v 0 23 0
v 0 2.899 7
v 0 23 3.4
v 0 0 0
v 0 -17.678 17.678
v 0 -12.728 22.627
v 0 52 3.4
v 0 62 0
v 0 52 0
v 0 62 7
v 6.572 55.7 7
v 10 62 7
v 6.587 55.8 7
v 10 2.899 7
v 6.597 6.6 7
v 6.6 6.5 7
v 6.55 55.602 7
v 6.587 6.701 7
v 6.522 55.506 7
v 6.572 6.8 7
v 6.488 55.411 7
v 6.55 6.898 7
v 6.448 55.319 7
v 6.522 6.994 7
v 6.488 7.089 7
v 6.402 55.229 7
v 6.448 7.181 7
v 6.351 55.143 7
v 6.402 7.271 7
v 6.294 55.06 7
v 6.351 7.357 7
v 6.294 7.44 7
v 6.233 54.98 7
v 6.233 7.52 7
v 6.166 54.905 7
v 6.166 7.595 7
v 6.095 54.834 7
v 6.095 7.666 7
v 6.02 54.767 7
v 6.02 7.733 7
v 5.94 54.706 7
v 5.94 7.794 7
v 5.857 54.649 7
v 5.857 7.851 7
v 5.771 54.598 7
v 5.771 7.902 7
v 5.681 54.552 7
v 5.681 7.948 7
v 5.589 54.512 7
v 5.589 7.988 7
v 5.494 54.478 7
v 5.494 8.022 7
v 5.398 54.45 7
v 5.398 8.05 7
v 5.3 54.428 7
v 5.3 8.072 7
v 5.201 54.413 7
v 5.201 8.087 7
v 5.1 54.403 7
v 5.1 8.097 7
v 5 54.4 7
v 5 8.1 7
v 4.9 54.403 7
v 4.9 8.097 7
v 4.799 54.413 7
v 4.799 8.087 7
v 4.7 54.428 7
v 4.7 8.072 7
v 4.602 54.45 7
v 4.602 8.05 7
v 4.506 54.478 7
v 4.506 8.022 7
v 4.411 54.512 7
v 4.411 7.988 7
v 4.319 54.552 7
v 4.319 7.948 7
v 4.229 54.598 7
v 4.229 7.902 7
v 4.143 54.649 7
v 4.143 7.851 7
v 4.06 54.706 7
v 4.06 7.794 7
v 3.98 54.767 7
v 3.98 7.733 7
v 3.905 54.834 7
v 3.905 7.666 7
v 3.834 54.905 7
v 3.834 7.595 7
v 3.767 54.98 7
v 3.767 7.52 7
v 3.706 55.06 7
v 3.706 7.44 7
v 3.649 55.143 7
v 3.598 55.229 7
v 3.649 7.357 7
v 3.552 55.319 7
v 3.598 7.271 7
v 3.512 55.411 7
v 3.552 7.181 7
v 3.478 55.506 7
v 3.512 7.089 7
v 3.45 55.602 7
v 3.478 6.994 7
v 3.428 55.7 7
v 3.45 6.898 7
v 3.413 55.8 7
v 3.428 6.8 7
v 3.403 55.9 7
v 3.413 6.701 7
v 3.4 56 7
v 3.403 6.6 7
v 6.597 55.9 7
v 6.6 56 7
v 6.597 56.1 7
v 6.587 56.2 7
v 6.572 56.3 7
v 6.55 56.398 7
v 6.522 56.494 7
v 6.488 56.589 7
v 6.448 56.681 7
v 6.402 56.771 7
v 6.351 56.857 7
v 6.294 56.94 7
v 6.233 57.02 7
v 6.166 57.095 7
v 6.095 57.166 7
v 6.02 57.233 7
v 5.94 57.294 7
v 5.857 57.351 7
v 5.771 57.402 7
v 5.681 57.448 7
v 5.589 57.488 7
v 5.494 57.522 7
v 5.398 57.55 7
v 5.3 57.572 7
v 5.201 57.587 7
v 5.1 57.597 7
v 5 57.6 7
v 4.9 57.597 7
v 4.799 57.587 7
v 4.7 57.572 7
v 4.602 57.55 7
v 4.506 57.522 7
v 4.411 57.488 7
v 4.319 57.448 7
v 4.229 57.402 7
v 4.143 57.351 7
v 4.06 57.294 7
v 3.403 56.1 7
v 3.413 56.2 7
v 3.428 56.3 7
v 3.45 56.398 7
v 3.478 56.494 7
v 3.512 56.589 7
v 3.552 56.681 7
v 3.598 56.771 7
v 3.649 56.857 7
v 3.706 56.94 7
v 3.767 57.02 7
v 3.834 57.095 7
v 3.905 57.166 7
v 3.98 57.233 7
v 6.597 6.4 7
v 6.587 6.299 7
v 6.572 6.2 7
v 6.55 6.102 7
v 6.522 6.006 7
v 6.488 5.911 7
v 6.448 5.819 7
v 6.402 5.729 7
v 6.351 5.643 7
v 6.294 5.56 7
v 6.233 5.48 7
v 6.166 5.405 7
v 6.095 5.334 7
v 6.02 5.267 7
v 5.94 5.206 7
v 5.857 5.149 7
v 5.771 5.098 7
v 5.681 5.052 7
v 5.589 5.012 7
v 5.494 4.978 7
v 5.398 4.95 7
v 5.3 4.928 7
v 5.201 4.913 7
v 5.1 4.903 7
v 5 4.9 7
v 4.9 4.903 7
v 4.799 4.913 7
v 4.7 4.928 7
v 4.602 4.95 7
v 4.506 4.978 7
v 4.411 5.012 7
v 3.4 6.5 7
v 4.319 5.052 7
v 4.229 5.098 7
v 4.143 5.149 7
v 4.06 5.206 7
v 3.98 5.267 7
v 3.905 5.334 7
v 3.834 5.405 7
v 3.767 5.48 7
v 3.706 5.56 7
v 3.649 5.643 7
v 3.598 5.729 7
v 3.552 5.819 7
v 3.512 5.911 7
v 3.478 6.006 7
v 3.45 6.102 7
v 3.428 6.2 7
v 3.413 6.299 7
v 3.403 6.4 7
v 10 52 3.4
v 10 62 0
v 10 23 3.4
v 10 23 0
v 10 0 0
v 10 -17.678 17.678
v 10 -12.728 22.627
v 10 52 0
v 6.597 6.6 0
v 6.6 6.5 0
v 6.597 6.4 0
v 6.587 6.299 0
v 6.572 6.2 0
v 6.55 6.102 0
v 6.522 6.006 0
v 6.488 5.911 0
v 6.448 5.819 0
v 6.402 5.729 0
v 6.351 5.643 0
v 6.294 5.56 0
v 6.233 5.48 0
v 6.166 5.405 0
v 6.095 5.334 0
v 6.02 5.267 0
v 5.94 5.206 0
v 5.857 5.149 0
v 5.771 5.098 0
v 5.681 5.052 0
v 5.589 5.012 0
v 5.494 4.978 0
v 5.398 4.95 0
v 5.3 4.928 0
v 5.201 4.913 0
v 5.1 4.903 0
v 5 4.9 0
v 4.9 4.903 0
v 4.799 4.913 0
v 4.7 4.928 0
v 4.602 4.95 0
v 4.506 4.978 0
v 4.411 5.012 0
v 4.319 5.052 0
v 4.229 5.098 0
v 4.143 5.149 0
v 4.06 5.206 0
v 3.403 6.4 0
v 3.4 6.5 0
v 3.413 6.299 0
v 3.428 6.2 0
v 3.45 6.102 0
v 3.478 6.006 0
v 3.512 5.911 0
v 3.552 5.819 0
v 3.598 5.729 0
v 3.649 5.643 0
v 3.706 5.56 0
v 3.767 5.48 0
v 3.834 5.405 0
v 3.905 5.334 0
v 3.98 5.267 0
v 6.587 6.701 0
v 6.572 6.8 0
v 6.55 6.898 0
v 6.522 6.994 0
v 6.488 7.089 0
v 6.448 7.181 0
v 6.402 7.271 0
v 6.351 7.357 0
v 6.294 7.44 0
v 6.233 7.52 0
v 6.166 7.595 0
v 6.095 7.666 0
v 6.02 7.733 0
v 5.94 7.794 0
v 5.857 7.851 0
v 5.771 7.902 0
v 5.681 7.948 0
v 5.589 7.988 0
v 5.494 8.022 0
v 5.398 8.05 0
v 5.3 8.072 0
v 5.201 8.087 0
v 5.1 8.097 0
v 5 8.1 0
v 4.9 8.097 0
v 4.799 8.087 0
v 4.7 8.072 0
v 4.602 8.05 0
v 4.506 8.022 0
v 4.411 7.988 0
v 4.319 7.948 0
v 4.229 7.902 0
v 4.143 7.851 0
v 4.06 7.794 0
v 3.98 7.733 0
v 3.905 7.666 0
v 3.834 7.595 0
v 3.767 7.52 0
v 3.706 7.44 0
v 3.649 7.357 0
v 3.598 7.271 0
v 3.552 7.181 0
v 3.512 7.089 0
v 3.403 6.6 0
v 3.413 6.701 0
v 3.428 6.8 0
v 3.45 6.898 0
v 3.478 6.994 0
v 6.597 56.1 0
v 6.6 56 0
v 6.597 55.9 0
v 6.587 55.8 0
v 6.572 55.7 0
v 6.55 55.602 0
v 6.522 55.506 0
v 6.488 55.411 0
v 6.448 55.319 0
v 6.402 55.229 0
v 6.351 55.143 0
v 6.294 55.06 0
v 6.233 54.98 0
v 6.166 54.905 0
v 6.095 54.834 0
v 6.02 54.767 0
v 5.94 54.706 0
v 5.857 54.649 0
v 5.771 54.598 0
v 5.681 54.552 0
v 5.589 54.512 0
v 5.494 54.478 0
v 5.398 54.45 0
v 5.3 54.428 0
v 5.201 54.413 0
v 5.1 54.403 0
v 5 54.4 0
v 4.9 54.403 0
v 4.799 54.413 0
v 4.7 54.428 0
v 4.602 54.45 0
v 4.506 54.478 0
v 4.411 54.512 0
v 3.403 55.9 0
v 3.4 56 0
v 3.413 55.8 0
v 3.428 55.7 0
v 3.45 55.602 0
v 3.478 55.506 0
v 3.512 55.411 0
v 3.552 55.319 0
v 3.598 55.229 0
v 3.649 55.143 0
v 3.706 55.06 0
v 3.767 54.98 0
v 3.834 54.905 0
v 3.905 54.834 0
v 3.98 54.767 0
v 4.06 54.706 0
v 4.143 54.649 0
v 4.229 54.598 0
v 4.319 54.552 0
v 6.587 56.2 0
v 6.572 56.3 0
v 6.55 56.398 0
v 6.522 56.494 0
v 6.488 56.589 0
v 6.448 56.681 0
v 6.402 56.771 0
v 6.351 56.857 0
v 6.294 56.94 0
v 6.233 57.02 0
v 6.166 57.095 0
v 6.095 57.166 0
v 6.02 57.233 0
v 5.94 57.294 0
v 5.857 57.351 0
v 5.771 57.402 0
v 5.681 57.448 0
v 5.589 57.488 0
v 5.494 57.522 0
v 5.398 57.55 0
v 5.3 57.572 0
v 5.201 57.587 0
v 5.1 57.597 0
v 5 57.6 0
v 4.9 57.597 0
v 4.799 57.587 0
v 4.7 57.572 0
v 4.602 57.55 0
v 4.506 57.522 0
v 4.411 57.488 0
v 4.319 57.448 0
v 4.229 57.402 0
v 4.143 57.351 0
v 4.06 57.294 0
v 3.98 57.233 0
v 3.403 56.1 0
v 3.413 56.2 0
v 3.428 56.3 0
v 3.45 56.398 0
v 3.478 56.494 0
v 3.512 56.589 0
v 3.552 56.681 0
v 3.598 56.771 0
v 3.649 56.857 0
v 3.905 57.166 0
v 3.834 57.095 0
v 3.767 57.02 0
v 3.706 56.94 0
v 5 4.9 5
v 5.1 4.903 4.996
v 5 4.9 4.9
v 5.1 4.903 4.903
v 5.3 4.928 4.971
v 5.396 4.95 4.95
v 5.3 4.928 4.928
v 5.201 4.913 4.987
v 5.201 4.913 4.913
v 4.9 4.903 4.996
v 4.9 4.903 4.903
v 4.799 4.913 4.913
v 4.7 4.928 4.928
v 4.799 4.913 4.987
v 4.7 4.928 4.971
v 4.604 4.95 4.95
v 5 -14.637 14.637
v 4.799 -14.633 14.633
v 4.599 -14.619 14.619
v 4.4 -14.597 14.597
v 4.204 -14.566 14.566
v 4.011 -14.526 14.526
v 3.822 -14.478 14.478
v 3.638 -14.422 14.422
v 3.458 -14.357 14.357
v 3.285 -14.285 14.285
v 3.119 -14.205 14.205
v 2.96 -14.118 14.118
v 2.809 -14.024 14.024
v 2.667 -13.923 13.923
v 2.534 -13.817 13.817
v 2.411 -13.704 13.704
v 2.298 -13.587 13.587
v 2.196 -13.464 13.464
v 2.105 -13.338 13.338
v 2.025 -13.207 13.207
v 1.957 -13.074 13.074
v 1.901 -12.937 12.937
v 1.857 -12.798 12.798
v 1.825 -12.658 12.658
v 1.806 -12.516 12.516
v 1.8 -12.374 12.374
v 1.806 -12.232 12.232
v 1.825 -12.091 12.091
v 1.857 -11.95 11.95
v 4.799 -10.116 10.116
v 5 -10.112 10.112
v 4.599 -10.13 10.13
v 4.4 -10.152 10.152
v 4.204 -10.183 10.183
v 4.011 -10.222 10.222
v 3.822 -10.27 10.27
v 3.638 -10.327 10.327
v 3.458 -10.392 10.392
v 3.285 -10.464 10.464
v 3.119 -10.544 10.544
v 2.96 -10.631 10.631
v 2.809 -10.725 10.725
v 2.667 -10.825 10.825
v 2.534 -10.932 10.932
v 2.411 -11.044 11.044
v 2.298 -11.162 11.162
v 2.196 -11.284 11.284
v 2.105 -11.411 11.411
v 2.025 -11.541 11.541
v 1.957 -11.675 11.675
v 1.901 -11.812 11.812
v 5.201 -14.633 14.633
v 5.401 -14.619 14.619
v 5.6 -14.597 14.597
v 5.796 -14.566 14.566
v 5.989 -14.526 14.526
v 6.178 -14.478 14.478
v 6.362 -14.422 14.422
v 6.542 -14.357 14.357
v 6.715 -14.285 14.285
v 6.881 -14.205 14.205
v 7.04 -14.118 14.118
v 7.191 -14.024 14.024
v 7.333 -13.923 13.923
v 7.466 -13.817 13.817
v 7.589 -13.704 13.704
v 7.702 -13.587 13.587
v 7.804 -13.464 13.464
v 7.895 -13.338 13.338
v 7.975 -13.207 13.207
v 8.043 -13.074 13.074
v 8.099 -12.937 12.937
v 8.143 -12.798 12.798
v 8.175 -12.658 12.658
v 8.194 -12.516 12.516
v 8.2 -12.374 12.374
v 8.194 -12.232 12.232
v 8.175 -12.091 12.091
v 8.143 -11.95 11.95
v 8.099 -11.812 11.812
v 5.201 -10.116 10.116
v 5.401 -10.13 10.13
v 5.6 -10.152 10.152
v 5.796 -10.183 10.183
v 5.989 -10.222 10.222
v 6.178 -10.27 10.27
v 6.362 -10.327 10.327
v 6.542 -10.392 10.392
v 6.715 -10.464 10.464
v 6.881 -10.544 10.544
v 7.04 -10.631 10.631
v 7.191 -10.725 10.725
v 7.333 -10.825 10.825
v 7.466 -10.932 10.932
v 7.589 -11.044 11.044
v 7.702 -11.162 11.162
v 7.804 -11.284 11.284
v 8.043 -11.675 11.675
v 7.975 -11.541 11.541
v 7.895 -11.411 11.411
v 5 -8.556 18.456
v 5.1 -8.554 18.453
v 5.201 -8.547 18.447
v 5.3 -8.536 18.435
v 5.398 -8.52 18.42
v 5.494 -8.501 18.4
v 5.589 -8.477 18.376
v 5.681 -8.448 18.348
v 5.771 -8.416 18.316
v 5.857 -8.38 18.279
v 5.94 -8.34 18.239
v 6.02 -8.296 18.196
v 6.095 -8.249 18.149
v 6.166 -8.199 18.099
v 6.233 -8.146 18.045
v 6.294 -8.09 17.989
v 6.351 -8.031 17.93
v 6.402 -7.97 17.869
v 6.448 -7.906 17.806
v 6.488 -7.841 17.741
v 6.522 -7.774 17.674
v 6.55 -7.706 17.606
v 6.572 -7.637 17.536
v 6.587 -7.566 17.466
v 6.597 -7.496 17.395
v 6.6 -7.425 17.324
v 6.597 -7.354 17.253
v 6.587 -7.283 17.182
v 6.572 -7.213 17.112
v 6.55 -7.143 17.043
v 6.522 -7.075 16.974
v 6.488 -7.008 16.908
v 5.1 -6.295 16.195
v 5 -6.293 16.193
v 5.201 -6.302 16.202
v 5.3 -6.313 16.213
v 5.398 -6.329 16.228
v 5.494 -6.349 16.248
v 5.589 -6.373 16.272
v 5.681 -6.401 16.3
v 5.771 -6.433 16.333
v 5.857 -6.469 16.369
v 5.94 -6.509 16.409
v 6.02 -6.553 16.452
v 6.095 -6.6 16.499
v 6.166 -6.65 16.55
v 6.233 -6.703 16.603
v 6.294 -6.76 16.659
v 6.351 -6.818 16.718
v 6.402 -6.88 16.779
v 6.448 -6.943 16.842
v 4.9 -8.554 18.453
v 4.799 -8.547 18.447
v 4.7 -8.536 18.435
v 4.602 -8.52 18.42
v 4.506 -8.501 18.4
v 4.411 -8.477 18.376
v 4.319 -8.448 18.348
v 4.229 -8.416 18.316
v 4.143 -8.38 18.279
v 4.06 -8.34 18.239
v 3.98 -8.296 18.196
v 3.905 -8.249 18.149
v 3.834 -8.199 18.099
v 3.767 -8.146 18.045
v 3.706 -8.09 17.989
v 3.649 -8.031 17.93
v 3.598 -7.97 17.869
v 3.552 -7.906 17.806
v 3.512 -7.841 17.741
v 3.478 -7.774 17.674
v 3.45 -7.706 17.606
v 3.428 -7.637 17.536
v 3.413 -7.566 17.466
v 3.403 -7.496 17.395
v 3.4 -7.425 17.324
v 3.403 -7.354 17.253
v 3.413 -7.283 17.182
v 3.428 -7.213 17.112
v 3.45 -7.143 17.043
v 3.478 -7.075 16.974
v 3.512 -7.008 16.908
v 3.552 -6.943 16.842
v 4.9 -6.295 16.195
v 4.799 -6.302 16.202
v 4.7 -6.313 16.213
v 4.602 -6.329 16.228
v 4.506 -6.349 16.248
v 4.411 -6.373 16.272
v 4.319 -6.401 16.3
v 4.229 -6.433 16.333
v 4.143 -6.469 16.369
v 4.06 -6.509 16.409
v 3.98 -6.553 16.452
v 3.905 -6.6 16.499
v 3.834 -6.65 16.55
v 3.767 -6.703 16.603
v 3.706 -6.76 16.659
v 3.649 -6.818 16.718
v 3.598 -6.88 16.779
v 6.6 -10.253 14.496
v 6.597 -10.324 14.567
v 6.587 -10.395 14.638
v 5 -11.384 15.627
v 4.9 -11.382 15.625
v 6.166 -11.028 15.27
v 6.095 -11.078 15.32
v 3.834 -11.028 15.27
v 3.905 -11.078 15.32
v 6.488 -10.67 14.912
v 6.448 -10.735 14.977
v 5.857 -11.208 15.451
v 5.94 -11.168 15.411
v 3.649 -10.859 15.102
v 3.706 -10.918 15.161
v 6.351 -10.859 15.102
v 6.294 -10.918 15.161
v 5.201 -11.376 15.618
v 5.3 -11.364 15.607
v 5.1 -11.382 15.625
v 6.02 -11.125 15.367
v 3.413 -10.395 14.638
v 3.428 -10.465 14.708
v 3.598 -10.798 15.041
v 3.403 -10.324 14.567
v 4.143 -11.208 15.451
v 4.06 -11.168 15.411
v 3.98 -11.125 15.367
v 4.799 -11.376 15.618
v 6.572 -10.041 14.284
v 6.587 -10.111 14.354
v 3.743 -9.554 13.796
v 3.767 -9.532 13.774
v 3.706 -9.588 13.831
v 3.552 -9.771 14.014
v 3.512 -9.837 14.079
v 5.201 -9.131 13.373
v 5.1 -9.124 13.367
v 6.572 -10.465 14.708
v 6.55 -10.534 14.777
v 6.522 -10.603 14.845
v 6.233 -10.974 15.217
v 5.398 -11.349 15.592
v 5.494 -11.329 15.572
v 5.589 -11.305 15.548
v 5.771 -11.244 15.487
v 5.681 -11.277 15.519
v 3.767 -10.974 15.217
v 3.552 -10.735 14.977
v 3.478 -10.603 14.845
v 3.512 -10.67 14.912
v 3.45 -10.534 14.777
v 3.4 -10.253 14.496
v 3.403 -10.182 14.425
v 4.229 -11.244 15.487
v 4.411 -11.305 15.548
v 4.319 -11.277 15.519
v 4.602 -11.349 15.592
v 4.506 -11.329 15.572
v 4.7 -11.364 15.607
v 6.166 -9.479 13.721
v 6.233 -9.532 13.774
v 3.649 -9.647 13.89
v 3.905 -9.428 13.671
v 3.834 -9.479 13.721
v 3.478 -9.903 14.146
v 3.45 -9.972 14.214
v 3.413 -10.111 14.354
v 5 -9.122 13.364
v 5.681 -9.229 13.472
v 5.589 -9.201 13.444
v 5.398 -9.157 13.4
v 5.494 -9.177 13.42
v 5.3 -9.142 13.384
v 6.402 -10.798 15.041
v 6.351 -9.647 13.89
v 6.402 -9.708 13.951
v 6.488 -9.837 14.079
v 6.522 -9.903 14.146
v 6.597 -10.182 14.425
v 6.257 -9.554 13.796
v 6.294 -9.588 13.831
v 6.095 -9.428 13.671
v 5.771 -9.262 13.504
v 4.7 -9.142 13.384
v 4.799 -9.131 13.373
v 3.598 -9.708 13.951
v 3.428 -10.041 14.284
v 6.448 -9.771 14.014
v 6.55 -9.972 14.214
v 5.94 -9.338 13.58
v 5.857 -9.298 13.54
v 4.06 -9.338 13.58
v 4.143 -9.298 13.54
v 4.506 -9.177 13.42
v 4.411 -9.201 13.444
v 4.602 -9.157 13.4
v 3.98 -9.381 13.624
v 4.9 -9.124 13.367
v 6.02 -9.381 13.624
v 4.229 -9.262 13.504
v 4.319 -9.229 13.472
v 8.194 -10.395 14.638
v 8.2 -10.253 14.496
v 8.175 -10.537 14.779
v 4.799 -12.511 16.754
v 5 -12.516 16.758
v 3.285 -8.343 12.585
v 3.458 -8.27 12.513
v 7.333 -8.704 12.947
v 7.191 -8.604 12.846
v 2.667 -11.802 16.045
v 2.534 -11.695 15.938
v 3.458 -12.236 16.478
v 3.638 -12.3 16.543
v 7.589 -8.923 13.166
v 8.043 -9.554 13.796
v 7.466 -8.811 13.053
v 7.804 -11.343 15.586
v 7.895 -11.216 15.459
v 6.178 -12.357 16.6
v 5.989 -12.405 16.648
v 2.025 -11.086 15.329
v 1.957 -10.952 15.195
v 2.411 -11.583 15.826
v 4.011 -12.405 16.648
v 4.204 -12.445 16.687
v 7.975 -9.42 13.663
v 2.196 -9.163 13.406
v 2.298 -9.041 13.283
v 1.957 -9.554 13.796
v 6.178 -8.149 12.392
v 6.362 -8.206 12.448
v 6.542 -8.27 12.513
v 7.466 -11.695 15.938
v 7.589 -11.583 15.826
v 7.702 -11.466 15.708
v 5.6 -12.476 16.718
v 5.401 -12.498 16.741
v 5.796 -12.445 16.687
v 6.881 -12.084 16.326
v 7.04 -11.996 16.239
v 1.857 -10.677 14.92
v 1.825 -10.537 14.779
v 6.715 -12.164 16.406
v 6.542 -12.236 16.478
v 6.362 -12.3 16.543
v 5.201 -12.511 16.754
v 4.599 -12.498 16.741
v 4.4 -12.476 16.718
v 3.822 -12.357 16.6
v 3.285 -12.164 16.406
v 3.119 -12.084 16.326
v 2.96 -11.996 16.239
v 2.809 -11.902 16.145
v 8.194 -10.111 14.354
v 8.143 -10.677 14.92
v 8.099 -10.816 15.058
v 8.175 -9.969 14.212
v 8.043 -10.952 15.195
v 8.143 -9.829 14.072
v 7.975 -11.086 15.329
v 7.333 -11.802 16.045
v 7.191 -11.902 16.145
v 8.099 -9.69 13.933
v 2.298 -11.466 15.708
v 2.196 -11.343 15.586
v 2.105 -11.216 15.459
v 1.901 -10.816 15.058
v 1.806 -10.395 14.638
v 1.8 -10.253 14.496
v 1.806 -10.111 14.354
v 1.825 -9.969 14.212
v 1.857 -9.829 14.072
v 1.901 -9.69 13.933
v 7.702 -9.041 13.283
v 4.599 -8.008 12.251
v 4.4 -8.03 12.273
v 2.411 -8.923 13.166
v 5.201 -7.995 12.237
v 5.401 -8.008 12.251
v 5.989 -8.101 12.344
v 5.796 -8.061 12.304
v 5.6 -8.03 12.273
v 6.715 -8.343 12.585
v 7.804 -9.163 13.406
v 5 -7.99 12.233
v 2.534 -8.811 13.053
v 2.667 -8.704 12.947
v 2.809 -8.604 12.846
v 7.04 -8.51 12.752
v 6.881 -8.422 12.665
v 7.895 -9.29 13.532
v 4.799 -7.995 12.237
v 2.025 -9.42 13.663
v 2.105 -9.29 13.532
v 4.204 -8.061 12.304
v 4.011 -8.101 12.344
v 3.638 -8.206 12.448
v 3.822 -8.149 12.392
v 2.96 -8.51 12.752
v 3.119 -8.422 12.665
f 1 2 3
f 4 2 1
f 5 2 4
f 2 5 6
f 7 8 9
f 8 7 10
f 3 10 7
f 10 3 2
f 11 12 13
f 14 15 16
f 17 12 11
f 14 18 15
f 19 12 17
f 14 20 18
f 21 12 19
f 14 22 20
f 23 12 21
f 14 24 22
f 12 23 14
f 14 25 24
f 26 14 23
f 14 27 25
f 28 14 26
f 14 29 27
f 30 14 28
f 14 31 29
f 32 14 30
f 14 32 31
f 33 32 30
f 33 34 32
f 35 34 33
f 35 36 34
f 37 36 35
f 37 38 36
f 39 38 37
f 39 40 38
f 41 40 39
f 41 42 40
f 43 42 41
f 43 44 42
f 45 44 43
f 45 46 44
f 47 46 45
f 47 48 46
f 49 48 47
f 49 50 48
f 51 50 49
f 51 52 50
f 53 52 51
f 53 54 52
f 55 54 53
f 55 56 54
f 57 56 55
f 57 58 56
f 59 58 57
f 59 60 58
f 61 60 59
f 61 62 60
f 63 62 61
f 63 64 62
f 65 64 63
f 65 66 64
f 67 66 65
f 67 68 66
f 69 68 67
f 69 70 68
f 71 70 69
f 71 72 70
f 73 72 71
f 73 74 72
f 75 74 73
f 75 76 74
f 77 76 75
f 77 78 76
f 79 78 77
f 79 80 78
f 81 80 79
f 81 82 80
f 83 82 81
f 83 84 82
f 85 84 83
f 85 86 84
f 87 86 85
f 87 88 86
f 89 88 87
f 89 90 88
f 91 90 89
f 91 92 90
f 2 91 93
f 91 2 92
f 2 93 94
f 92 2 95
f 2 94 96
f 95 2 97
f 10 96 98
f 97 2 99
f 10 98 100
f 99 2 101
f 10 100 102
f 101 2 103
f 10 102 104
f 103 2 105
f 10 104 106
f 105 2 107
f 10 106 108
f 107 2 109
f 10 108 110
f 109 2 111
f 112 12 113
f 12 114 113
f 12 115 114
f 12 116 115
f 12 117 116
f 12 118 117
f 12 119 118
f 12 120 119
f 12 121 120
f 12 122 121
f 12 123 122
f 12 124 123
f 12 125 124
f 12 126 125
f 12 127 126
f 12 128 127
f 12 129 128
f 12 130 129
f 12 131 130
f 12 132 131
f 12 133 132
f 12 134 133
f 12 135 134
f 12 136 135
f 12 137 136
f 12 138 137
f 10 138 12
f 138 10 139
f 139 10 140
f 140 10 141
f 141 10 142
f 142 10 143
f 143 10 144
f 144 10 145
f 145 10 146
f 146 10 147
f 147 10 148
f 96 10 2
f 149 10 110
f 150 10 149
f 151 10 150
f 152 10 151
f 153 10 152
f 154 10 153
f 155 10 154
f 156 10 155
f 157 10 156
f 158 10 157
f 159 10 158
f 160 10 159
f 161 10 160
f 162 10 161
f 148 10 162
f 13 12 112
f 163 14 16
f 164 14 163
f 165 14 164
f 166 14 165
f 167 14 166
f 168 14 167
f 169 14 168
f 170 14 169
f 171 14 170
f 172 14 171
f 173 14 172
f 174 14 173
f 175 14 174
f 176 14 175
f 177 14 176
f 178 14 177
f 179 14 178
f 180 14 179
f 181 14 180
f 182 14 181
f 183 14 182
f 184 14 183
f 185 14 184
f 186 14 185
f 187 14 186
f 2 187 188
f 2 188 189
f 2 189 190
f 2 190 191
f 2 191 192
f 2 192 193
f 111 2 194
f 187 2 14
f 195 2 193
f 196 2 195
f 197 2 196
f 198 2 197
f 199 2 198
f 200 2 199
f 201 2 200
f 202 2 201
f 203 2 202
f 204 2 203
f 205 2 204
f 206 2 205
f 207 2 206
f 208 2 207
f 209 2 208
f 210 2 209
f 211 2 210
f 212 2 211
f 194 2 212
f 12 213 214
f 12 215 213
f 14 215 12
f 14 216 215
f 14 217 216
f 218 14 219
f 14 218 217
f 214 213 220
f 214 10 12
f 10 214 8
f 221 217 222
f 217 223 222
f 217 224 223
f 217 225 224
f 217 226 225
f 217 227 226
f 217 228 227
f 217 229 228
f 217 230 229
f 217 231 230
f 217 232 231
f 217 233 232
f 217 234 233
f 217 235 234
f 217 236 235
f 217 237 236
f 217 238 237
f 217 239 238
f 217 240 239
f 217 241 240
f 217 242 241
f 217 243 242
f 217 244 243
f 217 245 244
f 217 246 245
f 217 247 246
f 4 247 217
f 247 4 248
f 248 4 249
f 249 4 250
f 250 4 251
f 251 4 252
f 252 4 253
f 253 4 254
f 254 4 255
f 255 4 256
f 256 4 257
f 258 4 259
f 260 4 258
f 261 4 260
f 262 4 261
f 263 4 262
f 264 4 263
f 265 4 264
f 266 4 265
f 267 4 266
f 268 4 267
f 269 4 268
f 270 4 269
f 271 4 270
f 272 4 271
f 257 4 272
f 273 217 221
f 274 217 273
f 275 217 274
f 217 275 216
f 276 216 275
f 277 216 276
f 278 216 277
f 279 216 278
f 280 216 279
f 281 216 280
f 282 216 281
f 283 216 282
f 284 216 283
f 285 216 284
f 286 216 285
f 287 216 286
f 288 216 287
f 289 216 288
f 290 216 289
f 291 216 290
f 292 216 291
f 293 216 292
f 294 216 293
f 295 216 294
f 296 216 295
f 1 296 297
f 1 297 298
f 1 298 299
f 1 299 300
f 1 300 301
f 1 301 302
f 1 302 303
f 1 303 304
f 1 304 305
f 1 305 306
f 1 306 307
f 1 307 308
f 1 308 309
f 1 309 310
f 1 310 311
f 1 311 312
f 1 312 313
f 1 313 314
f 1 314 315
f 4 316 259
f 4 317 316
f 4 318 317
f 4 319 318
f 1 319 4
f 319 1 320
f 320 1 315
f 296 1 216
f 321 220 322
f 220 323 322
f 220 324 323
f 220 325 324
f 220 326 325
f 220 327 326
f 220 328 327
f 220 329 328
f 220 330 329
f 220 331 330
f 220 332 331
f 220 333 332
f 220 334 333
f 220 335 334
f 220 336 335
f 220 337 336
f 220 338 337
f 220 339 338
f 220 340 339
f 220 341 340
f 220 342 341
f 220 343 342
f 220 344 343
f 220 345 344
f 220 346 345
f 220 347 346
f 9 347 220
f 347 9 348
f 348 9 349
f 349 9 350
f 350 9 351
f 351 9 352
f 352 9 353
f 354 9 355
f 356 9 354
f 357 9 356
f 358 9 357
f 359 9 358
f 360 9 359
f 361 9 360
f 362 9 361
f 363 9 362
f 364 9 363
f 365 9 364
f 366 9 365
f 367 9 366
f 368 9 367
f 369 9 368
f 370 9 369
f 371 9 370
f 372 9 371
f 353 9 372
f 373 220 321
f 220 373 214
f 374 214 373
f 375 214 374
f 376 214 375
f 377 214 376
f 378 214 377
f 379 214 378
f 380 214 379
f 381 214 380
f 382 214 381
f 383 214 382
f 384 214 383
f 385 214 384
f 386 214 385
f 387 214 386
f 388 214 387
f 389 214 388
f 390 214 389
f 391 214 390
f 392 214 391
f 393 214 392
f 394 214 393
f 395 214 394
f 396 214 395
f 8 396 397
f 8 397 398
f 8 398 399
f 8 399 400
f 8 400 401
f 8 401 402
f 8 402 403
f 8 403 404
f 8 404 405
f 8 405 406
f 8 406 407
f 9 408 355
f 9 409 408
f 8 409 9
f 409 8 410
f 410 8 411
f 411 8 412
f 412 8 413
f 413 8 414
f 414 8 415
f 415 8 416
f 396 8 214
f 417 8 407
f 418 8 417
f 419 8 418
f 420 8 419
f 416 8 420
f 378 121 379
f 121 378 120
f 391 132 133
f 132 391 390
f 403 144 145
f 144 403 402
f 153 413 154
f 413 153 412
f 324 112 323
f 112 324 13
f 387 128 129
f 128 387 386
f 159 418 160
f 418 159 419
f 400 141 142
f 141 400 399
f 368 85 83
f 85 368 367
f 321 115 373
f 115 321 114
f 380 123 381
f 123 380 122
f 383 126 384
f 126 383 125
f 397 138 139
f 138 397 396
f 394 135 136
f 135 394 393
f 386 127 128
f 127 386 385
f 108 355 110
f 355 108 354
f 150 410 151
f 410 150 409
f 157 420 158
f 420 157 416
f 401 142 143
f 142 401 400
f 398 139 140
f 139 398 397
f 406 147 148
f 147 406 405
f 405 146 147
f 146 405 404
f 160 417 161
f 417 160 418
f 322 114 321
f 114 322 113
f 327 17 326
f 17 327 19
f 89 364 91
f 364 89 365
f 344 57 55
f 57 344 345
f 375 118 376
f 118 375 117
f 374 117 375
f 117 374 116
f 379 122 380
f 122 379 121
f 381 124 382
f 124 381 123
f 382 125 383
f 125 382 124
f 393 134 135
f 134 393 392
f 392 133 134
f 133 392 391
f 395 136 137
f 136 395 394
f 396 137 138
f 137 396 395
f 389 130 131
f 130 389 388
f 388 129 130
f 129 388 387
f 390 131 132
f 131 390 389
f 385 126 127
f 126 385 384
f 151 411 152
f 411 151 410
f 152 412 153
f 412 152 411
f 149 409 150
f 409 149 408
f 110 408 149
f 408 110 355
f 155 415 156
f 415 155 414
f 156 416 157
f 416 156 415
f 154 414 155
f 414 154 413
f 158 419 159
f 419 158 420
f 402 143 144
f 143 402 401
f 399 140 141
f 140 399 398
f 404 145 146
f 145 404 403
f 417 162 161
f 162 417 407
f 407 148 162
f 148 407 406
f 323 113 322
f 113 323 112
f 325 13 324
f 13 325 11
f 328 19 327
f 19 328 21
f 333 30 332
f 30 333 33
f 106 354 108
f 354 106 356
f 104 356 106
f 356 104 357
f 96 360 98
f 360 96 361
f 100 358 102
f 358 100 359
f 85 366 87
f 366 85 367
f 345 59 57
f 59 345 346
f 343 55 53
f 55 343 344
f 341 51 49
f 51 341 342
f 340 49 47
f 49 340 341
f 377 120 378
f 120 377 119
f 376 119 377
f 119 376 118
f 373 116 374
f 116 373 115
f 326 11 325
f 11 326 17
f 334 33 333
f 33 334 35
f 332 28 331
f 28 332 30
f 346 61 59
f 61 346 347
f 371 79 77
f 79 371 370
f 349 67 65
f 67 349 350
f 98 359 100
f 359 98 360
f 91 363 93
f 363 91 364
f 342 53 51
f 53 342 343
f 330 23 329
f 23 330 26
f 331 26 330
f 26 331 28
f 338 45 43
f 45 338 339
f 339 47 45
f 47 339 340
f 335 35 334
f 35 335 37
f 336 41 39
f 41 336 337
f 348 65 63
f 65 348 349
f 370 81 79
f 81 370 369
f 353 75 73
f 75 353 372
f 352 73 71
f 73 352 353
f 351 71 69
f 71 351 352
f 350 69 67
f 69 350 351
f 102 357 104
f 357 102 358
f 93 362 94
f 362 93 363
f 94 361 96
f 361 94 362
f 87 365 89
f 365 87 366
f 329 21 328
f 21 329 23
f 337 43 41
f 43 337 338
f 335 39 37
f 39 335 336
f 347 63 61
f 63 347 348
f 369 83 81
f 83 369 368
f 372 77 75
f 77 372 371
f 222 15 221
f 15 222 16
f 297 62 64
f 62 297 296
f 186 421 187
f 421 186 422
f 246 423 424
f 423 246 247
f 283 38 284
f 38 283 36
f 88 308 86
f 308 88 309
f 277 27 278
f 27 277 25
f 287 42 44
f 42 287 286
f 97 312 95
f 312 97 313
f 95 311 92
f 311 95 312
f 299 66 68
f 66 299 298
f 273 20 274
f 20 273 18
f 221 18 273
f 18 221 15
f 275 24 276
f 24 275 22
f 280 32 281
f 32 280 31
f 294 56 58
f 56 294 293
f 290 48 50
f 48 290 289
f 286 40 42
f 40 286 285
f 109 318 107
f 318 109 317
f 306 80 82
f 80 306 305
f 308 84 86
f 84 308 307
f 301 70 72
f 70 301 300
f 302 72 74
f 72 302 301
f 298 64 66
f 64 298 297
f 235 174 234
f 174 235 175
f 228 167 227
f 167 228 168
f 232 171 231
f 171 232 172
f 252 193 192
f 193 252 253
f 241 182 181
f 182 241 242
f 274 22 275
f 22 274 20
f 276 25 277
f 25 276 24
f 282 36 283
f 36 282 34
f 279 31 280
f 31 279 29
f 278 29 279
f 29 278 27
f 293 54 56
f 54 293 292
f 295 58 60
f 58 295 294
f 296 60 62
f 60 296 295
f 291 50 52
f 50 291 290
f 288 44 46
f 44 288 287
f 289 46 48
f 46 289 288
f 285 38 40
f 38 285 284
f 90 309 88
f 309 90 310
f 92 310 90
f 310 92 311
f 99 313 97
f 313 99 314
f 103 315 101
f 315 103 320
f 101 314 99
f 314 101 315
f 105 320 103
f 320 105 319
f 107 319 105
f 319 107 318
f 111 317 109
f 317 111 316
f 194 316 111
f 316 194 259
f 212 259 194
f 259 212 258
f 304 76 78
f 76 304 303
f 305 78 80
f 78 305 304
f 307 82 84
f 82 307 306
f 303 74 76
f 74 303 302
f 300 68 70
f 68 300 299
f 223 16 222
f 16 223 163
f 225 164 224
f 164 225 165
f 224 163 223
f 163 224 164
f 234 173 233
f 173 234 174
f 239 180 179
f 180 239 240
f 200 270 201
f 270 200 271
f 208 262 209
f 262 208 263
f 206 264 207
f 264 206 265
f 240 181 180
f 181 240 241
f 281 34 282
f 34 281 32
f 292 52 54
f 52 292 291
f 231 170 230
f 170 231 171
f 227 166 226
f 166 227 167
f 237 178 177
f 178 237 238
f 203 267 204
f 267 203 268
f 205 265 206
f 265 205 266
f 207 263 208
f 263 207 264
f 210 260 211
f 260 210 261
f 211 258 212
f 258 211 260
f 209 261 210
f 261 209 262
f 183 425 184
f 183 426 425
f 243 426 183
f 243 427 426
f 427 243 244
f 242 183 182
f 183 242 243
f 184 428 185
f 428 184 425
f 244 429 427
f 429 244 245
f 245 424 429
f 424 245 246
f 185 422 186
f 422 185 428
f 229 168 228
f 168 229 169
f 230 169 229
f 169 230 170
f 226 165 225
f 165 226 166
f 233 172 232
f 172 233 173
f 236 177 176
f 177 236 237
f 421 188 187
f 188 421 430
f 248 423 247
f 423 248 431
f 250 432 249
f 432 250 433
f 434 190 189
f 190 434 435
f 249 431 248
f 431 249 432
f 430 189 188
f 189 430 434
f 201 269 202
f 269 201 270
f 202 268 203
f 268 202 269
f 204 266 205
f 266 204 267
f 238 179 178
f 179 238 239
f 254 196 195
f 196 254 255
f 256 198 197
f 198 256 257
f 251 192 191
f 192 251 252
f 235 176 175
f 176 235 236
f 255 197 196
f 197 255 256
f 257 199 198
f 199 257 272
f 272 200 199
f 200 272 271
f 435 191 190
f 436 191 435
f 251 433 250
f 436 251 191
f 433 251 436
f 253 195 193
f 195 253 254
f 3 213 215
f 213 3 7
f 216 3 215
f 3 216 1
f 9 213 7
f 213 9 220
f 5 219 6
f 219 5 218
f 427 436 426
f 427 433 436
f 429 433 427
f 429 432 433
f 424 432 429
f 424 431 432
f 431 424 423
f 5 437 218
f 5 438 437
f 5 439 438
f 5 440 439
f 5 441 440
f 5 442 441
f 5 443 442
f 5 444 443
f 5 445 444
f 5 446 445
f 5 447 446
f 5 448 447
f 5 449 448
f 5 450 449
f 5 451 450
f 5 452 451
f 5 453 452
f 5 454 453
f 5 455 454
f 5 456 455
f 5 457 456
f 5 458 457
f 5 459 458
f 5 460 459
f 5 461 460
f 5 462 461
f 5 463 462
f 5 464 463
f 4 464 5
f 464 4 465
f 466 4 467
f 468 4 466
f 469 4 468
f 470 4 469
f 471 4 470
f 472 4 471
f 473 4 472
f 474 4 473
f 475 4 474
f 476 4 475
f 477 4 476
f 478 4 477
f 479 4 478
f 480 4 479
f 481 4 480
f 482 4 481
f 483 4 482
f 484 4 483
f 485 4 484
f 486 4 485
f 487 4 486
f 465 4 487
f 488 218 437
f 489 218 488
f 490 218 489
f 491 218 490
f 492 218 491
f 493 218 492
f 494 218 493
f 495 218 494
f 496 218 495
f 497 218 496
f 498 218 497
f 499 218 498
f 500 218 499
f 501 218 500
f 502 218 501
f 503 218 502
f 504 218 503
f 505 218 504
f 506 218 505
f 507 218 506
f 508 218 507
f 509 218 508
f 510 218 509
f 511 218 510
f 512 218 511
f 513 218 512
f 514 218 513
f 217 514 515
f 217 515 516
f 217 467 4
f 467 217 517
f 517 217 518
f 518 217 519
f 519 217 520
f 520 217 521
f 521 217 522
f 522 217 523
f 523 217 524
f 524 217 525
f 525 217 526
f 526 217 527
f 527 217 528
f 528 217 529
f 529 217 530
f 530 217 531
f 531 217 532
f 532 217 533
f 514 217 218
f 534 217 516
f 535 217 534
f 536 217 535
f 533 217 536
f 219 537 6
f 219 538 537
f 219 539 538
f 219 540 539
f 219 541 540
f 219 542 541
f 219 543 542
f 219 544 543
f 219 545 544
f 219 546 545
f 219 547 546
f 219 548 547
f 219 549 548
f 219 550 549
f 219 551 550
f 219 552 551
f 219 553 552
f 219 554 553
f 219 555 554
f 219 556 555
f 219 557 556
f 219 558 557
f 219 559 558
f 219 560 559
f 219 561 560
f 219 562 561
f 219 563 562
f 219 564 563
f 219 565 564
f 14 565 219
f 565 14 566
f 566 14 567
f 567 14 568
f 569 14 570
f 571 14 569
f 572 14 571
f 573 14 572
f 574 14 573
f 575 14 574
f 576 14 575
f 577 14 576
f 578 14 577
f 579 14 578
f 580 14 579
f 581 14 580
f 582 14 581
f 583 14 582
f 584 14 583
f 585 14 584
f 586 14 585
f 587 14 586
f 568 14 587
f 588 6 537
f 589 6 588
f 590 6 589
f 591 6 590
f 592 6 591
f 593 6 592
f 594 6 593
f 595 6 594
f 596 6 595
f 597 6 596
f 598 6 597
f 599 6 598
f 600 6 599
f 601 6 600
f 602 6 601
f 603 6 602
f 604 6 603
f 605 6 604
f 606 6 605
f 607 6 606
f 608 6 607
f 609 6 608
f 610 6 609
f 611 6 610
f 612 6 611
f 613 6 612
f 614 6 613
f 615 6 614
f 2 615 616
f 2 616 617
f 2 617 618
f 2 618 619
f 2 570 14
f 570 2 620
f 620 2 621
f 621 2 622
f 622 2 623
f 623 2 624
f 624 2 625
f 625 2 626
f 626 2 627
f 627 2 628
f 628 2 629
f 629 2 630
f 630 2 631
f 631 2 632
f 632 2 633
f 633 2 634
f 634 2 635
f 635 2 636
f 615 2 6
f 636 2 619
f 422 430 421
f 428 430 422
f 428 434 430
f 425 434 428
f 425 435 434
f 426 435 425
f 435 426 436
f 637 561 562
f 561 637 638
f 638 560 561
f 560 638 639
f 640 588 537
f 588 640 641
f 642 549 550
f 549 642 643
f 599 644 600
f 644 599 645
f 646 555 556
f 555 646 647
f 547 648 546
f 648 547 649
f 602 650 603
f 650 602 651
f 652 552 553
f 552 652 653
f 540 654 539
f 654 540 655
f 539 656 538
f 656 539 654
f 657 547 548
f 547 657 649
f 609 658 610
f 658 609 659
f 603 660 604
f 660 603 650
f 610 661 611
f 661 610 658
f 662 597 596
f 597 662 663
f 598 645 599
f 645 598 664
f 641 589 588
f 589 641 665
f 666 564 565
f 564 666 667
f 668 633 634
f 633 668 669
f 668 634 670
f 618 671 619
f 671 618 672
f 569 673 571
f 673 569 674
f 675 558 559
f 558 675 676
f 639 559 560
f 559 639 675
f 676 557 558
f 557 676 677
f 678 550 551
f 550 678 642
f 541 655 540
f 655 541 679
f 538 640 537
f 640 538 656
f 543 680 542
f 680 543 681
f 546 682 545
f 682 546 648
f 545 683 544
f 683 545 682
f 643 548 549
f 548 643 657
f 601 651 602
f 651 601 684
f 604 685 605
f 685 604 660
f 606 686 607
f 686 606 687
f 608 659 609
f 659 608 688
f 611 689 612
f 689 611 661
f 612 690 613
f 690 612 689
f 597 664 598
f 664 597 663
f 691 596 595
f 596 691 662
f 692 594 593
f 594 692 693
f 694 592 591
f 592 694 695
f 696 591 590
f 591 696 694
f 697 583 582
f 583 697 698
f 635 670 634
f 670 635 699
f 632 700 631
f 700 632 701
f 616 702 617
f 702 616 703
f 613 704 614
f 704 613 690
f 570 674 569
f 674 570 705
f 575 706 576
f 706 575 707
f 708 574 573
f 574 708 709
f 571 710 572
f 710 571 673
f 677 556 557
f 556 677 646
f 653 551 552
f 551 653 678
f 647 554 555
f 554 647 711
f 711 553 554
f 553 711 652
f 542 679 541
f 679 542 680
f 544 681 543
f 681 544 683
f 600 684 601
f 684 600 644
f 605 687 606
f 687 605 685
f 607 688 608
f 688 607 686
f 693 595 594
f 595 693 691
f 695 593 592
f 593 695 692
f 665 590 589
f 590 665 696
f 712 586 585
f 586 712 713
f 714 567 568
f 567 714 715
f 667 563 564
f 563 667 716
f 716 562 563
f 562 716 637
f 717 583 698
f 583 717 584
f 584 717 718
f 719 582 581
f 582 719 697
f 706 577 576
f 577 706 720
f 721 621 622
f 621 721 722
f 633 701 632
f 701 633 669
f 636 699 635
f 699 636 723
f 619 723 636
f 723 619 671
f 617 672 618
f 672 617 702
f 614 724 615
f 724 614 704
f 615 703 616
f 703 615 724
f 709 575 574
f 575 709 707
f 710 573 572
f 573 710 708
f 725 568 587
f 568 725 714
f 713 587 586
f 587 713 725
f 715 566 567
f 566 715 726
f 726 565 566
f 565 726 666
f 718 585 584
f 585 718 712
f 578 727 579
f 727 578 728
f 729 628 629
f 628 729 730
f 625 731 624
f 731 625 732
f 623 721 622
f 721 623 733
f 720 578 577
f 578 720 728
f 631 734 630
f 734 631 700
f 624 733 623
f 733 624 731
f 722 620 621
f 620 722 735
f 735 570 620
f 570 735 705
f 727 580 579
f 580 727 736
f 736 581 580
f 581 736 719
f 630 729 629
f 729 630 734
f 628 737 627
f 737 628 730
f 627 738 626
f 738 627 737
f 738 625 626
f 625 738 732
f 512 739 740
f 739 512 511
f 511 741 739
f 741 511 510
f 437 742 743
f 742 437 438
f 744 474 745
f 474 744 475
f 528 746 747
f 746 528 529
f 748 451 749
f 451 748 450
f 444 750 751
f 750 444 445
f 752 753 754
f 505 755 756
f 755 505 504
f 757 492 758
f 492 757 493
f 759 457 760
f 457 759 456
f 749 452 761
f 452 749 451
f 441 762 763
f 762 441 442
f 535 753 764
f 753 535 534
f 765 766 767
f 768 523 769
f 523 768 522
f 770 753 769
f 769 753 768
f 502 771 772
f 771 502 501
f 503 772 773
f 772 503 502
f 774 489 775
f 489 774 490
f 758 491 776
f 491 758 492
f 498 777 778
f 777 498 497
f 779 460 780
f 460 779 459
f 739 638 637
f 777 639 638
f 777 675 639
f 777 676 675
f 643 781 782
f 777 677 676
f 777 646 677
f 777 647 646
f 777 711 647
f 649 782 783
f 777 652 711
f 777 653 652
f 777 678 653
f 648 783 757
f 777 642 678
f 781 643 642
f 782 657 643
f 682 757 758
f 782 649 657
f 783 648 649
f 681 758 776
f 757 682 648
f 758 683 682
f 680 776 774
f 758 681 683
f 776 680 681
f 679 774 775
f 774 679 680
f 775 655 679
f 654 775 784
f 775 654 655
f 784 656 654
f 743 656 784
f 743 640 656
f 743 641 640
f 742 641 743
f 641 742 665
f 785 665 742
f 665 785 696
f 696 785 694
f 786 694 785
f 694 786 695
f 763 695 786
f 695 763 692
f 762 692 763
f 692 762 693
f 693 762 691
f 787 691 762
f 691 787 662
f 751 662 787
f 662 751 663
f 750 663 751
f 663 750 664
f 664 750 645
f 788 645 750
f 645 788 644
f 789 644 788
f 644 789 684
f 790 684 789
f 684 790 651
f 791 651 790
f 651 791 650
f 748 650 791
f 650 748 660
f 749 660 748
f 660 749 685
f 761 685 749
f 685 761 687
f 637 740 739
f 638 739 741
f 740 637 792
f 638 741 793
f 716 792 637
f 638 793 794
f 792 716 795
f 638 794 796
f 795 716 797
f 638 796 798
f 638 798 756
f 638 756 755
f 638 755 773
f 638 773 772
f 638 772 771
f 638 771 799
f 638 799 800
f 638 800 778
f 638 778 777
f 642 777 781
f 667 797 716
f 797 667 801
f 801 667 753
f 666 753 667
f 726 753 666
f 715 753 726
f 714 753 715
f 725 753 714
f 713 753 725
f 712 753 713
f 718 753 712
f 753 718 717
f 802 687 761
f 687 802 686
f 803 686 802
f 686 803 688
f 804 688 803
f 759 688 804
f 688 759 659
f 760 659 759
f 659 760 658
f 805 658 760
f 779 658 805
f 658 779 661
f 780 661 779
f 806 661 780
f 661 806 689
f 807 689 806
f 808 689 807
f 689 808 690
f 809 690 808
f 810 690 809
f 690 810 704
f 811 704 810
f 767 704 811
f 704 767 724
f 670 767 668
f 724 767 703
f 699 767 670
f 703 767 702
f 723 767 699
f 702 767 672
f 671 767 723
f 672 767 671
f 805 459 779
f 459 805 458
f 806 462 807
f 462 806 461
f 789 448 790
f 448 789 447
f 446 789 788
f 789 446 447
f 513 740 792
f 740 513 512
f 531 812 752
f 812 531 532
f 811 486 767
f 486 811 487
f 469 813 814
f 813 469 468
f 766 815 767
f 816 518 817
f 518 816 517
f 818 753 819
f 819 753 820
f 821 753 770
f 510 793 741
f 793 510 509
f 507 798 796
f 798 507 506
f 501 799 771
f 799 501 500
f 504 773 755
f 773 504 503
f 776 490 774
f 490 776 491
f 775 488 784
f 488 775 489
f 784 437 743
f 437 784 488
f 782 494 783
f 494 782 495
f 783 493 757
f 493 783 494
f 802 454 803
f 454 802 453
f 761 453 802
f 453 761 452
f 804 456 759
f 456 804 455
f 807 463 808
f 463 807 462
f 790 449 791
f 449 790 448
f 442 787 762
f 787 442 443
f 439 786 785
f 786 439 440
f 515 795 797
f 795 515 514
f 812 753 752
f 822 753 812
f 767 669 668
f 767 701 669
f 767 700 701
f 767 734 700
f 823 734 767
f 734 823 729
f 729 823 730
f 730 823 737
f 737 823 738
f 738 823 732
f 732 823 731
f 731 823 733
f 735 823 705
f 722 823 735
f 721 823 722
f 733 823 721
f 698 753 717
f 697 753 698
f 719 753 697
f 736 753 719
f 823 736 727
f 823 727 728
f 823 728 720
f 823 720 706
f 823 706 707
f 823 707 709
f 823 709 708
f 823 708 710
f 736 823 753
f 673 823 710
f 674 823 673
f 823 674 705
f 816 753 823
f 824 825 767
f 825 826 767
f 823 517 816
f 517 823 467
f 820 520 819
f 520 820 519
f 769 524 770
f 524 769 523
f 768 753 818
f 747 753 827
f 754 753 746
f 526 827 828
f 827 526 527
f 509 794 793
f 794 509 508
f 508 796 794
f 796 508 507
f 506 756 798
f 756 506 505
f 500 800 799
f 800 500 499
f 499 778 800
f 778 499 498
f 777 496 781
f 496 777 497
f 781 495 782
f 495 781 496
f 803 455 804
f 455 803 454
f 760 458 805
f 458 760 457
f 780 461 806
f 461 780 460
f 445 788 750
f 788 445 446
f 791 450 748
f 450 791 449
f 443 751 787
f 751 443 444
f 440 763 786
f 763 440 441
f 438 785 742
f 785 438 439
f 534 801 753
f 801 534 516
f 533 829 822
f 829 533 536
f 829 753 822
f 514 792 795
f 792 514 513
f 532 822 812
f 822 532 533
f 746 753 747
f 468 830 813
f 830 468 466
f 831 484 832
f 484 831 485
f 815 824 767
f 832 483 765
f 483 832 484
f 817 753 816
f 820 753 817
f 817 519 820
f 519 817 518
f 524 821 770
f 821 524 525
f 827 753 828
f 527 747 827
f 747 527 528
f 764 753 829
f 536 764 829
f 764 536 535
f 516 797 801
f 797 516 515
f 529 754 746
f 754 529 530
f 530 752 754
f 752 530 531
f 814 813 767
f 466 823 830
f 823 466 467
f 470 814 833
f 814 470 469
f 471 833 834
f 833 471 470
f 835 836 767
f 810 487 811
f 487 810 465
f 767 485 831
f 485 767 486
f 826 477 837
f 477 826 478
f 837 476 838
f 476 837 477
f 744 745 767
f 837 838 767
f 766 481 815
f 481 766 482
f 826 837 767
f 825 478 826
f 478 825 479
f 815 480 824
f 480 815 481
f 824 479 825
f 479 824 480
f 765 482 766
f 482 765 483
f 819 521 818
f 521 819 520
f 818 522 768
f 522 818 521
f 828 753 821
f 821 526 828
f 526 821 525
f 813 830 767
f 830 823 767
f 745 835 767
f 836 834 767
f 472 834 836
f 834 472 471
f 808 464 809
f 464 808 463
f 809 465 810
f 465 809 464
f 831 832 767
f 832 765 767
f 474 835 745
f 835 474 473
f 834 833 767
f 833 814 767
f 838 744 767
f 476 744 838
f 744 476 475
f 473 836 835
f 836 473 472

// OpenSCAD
$fn = 100;

lcd_w = 150;
lcd_l = 55;

support1_w = 10;
support1_l = 62;
support1_h = 7;
offset = 6;
hole_l = 49.5;
hole_d = 3.2;
sd_card_l = 29;
sd_card_h = 3.4;
support2_w = 10;
support2_l = 7;
support2_h = 25;
ext_w = 15;

union() {
  difference() {
    difference() {
      translate([0, 0, 0])
        cube([support1_w, support1_l, support1_h]);  
      translate([support1_w / 2, support1_l - offset, 0])
        cylinder(r=hole_d / 2, h=support1_h);
      translate([support1_w / 2, support1_l - offset - hole_l, 0])
        cylinder(r=hole_d / 2, h=support1_h);
    };
    translate([0, 23, 0])
      cube([support1_w, sd_card_l, sd_card_h]);
  };
  translate([0, 0, 0])
    rotate([45, 0, 0]) {
      difference() {
        cube([support2_w, support2_l, support2_h]);
        translate([support2_w / 2, support2_l, support2_h - (ext_w / 2)])
          rotate([90, 0, 0]) {
            cylinder(r=hole_d / 2, h=support2_l);
          };
        translate([support2_w / 2, 3, support2_h - (ext_w / 2)])
          rotate([90, 0, 0]) {
            cylinder(r=hole_d, h=3);
          };
      };
    };
  };
